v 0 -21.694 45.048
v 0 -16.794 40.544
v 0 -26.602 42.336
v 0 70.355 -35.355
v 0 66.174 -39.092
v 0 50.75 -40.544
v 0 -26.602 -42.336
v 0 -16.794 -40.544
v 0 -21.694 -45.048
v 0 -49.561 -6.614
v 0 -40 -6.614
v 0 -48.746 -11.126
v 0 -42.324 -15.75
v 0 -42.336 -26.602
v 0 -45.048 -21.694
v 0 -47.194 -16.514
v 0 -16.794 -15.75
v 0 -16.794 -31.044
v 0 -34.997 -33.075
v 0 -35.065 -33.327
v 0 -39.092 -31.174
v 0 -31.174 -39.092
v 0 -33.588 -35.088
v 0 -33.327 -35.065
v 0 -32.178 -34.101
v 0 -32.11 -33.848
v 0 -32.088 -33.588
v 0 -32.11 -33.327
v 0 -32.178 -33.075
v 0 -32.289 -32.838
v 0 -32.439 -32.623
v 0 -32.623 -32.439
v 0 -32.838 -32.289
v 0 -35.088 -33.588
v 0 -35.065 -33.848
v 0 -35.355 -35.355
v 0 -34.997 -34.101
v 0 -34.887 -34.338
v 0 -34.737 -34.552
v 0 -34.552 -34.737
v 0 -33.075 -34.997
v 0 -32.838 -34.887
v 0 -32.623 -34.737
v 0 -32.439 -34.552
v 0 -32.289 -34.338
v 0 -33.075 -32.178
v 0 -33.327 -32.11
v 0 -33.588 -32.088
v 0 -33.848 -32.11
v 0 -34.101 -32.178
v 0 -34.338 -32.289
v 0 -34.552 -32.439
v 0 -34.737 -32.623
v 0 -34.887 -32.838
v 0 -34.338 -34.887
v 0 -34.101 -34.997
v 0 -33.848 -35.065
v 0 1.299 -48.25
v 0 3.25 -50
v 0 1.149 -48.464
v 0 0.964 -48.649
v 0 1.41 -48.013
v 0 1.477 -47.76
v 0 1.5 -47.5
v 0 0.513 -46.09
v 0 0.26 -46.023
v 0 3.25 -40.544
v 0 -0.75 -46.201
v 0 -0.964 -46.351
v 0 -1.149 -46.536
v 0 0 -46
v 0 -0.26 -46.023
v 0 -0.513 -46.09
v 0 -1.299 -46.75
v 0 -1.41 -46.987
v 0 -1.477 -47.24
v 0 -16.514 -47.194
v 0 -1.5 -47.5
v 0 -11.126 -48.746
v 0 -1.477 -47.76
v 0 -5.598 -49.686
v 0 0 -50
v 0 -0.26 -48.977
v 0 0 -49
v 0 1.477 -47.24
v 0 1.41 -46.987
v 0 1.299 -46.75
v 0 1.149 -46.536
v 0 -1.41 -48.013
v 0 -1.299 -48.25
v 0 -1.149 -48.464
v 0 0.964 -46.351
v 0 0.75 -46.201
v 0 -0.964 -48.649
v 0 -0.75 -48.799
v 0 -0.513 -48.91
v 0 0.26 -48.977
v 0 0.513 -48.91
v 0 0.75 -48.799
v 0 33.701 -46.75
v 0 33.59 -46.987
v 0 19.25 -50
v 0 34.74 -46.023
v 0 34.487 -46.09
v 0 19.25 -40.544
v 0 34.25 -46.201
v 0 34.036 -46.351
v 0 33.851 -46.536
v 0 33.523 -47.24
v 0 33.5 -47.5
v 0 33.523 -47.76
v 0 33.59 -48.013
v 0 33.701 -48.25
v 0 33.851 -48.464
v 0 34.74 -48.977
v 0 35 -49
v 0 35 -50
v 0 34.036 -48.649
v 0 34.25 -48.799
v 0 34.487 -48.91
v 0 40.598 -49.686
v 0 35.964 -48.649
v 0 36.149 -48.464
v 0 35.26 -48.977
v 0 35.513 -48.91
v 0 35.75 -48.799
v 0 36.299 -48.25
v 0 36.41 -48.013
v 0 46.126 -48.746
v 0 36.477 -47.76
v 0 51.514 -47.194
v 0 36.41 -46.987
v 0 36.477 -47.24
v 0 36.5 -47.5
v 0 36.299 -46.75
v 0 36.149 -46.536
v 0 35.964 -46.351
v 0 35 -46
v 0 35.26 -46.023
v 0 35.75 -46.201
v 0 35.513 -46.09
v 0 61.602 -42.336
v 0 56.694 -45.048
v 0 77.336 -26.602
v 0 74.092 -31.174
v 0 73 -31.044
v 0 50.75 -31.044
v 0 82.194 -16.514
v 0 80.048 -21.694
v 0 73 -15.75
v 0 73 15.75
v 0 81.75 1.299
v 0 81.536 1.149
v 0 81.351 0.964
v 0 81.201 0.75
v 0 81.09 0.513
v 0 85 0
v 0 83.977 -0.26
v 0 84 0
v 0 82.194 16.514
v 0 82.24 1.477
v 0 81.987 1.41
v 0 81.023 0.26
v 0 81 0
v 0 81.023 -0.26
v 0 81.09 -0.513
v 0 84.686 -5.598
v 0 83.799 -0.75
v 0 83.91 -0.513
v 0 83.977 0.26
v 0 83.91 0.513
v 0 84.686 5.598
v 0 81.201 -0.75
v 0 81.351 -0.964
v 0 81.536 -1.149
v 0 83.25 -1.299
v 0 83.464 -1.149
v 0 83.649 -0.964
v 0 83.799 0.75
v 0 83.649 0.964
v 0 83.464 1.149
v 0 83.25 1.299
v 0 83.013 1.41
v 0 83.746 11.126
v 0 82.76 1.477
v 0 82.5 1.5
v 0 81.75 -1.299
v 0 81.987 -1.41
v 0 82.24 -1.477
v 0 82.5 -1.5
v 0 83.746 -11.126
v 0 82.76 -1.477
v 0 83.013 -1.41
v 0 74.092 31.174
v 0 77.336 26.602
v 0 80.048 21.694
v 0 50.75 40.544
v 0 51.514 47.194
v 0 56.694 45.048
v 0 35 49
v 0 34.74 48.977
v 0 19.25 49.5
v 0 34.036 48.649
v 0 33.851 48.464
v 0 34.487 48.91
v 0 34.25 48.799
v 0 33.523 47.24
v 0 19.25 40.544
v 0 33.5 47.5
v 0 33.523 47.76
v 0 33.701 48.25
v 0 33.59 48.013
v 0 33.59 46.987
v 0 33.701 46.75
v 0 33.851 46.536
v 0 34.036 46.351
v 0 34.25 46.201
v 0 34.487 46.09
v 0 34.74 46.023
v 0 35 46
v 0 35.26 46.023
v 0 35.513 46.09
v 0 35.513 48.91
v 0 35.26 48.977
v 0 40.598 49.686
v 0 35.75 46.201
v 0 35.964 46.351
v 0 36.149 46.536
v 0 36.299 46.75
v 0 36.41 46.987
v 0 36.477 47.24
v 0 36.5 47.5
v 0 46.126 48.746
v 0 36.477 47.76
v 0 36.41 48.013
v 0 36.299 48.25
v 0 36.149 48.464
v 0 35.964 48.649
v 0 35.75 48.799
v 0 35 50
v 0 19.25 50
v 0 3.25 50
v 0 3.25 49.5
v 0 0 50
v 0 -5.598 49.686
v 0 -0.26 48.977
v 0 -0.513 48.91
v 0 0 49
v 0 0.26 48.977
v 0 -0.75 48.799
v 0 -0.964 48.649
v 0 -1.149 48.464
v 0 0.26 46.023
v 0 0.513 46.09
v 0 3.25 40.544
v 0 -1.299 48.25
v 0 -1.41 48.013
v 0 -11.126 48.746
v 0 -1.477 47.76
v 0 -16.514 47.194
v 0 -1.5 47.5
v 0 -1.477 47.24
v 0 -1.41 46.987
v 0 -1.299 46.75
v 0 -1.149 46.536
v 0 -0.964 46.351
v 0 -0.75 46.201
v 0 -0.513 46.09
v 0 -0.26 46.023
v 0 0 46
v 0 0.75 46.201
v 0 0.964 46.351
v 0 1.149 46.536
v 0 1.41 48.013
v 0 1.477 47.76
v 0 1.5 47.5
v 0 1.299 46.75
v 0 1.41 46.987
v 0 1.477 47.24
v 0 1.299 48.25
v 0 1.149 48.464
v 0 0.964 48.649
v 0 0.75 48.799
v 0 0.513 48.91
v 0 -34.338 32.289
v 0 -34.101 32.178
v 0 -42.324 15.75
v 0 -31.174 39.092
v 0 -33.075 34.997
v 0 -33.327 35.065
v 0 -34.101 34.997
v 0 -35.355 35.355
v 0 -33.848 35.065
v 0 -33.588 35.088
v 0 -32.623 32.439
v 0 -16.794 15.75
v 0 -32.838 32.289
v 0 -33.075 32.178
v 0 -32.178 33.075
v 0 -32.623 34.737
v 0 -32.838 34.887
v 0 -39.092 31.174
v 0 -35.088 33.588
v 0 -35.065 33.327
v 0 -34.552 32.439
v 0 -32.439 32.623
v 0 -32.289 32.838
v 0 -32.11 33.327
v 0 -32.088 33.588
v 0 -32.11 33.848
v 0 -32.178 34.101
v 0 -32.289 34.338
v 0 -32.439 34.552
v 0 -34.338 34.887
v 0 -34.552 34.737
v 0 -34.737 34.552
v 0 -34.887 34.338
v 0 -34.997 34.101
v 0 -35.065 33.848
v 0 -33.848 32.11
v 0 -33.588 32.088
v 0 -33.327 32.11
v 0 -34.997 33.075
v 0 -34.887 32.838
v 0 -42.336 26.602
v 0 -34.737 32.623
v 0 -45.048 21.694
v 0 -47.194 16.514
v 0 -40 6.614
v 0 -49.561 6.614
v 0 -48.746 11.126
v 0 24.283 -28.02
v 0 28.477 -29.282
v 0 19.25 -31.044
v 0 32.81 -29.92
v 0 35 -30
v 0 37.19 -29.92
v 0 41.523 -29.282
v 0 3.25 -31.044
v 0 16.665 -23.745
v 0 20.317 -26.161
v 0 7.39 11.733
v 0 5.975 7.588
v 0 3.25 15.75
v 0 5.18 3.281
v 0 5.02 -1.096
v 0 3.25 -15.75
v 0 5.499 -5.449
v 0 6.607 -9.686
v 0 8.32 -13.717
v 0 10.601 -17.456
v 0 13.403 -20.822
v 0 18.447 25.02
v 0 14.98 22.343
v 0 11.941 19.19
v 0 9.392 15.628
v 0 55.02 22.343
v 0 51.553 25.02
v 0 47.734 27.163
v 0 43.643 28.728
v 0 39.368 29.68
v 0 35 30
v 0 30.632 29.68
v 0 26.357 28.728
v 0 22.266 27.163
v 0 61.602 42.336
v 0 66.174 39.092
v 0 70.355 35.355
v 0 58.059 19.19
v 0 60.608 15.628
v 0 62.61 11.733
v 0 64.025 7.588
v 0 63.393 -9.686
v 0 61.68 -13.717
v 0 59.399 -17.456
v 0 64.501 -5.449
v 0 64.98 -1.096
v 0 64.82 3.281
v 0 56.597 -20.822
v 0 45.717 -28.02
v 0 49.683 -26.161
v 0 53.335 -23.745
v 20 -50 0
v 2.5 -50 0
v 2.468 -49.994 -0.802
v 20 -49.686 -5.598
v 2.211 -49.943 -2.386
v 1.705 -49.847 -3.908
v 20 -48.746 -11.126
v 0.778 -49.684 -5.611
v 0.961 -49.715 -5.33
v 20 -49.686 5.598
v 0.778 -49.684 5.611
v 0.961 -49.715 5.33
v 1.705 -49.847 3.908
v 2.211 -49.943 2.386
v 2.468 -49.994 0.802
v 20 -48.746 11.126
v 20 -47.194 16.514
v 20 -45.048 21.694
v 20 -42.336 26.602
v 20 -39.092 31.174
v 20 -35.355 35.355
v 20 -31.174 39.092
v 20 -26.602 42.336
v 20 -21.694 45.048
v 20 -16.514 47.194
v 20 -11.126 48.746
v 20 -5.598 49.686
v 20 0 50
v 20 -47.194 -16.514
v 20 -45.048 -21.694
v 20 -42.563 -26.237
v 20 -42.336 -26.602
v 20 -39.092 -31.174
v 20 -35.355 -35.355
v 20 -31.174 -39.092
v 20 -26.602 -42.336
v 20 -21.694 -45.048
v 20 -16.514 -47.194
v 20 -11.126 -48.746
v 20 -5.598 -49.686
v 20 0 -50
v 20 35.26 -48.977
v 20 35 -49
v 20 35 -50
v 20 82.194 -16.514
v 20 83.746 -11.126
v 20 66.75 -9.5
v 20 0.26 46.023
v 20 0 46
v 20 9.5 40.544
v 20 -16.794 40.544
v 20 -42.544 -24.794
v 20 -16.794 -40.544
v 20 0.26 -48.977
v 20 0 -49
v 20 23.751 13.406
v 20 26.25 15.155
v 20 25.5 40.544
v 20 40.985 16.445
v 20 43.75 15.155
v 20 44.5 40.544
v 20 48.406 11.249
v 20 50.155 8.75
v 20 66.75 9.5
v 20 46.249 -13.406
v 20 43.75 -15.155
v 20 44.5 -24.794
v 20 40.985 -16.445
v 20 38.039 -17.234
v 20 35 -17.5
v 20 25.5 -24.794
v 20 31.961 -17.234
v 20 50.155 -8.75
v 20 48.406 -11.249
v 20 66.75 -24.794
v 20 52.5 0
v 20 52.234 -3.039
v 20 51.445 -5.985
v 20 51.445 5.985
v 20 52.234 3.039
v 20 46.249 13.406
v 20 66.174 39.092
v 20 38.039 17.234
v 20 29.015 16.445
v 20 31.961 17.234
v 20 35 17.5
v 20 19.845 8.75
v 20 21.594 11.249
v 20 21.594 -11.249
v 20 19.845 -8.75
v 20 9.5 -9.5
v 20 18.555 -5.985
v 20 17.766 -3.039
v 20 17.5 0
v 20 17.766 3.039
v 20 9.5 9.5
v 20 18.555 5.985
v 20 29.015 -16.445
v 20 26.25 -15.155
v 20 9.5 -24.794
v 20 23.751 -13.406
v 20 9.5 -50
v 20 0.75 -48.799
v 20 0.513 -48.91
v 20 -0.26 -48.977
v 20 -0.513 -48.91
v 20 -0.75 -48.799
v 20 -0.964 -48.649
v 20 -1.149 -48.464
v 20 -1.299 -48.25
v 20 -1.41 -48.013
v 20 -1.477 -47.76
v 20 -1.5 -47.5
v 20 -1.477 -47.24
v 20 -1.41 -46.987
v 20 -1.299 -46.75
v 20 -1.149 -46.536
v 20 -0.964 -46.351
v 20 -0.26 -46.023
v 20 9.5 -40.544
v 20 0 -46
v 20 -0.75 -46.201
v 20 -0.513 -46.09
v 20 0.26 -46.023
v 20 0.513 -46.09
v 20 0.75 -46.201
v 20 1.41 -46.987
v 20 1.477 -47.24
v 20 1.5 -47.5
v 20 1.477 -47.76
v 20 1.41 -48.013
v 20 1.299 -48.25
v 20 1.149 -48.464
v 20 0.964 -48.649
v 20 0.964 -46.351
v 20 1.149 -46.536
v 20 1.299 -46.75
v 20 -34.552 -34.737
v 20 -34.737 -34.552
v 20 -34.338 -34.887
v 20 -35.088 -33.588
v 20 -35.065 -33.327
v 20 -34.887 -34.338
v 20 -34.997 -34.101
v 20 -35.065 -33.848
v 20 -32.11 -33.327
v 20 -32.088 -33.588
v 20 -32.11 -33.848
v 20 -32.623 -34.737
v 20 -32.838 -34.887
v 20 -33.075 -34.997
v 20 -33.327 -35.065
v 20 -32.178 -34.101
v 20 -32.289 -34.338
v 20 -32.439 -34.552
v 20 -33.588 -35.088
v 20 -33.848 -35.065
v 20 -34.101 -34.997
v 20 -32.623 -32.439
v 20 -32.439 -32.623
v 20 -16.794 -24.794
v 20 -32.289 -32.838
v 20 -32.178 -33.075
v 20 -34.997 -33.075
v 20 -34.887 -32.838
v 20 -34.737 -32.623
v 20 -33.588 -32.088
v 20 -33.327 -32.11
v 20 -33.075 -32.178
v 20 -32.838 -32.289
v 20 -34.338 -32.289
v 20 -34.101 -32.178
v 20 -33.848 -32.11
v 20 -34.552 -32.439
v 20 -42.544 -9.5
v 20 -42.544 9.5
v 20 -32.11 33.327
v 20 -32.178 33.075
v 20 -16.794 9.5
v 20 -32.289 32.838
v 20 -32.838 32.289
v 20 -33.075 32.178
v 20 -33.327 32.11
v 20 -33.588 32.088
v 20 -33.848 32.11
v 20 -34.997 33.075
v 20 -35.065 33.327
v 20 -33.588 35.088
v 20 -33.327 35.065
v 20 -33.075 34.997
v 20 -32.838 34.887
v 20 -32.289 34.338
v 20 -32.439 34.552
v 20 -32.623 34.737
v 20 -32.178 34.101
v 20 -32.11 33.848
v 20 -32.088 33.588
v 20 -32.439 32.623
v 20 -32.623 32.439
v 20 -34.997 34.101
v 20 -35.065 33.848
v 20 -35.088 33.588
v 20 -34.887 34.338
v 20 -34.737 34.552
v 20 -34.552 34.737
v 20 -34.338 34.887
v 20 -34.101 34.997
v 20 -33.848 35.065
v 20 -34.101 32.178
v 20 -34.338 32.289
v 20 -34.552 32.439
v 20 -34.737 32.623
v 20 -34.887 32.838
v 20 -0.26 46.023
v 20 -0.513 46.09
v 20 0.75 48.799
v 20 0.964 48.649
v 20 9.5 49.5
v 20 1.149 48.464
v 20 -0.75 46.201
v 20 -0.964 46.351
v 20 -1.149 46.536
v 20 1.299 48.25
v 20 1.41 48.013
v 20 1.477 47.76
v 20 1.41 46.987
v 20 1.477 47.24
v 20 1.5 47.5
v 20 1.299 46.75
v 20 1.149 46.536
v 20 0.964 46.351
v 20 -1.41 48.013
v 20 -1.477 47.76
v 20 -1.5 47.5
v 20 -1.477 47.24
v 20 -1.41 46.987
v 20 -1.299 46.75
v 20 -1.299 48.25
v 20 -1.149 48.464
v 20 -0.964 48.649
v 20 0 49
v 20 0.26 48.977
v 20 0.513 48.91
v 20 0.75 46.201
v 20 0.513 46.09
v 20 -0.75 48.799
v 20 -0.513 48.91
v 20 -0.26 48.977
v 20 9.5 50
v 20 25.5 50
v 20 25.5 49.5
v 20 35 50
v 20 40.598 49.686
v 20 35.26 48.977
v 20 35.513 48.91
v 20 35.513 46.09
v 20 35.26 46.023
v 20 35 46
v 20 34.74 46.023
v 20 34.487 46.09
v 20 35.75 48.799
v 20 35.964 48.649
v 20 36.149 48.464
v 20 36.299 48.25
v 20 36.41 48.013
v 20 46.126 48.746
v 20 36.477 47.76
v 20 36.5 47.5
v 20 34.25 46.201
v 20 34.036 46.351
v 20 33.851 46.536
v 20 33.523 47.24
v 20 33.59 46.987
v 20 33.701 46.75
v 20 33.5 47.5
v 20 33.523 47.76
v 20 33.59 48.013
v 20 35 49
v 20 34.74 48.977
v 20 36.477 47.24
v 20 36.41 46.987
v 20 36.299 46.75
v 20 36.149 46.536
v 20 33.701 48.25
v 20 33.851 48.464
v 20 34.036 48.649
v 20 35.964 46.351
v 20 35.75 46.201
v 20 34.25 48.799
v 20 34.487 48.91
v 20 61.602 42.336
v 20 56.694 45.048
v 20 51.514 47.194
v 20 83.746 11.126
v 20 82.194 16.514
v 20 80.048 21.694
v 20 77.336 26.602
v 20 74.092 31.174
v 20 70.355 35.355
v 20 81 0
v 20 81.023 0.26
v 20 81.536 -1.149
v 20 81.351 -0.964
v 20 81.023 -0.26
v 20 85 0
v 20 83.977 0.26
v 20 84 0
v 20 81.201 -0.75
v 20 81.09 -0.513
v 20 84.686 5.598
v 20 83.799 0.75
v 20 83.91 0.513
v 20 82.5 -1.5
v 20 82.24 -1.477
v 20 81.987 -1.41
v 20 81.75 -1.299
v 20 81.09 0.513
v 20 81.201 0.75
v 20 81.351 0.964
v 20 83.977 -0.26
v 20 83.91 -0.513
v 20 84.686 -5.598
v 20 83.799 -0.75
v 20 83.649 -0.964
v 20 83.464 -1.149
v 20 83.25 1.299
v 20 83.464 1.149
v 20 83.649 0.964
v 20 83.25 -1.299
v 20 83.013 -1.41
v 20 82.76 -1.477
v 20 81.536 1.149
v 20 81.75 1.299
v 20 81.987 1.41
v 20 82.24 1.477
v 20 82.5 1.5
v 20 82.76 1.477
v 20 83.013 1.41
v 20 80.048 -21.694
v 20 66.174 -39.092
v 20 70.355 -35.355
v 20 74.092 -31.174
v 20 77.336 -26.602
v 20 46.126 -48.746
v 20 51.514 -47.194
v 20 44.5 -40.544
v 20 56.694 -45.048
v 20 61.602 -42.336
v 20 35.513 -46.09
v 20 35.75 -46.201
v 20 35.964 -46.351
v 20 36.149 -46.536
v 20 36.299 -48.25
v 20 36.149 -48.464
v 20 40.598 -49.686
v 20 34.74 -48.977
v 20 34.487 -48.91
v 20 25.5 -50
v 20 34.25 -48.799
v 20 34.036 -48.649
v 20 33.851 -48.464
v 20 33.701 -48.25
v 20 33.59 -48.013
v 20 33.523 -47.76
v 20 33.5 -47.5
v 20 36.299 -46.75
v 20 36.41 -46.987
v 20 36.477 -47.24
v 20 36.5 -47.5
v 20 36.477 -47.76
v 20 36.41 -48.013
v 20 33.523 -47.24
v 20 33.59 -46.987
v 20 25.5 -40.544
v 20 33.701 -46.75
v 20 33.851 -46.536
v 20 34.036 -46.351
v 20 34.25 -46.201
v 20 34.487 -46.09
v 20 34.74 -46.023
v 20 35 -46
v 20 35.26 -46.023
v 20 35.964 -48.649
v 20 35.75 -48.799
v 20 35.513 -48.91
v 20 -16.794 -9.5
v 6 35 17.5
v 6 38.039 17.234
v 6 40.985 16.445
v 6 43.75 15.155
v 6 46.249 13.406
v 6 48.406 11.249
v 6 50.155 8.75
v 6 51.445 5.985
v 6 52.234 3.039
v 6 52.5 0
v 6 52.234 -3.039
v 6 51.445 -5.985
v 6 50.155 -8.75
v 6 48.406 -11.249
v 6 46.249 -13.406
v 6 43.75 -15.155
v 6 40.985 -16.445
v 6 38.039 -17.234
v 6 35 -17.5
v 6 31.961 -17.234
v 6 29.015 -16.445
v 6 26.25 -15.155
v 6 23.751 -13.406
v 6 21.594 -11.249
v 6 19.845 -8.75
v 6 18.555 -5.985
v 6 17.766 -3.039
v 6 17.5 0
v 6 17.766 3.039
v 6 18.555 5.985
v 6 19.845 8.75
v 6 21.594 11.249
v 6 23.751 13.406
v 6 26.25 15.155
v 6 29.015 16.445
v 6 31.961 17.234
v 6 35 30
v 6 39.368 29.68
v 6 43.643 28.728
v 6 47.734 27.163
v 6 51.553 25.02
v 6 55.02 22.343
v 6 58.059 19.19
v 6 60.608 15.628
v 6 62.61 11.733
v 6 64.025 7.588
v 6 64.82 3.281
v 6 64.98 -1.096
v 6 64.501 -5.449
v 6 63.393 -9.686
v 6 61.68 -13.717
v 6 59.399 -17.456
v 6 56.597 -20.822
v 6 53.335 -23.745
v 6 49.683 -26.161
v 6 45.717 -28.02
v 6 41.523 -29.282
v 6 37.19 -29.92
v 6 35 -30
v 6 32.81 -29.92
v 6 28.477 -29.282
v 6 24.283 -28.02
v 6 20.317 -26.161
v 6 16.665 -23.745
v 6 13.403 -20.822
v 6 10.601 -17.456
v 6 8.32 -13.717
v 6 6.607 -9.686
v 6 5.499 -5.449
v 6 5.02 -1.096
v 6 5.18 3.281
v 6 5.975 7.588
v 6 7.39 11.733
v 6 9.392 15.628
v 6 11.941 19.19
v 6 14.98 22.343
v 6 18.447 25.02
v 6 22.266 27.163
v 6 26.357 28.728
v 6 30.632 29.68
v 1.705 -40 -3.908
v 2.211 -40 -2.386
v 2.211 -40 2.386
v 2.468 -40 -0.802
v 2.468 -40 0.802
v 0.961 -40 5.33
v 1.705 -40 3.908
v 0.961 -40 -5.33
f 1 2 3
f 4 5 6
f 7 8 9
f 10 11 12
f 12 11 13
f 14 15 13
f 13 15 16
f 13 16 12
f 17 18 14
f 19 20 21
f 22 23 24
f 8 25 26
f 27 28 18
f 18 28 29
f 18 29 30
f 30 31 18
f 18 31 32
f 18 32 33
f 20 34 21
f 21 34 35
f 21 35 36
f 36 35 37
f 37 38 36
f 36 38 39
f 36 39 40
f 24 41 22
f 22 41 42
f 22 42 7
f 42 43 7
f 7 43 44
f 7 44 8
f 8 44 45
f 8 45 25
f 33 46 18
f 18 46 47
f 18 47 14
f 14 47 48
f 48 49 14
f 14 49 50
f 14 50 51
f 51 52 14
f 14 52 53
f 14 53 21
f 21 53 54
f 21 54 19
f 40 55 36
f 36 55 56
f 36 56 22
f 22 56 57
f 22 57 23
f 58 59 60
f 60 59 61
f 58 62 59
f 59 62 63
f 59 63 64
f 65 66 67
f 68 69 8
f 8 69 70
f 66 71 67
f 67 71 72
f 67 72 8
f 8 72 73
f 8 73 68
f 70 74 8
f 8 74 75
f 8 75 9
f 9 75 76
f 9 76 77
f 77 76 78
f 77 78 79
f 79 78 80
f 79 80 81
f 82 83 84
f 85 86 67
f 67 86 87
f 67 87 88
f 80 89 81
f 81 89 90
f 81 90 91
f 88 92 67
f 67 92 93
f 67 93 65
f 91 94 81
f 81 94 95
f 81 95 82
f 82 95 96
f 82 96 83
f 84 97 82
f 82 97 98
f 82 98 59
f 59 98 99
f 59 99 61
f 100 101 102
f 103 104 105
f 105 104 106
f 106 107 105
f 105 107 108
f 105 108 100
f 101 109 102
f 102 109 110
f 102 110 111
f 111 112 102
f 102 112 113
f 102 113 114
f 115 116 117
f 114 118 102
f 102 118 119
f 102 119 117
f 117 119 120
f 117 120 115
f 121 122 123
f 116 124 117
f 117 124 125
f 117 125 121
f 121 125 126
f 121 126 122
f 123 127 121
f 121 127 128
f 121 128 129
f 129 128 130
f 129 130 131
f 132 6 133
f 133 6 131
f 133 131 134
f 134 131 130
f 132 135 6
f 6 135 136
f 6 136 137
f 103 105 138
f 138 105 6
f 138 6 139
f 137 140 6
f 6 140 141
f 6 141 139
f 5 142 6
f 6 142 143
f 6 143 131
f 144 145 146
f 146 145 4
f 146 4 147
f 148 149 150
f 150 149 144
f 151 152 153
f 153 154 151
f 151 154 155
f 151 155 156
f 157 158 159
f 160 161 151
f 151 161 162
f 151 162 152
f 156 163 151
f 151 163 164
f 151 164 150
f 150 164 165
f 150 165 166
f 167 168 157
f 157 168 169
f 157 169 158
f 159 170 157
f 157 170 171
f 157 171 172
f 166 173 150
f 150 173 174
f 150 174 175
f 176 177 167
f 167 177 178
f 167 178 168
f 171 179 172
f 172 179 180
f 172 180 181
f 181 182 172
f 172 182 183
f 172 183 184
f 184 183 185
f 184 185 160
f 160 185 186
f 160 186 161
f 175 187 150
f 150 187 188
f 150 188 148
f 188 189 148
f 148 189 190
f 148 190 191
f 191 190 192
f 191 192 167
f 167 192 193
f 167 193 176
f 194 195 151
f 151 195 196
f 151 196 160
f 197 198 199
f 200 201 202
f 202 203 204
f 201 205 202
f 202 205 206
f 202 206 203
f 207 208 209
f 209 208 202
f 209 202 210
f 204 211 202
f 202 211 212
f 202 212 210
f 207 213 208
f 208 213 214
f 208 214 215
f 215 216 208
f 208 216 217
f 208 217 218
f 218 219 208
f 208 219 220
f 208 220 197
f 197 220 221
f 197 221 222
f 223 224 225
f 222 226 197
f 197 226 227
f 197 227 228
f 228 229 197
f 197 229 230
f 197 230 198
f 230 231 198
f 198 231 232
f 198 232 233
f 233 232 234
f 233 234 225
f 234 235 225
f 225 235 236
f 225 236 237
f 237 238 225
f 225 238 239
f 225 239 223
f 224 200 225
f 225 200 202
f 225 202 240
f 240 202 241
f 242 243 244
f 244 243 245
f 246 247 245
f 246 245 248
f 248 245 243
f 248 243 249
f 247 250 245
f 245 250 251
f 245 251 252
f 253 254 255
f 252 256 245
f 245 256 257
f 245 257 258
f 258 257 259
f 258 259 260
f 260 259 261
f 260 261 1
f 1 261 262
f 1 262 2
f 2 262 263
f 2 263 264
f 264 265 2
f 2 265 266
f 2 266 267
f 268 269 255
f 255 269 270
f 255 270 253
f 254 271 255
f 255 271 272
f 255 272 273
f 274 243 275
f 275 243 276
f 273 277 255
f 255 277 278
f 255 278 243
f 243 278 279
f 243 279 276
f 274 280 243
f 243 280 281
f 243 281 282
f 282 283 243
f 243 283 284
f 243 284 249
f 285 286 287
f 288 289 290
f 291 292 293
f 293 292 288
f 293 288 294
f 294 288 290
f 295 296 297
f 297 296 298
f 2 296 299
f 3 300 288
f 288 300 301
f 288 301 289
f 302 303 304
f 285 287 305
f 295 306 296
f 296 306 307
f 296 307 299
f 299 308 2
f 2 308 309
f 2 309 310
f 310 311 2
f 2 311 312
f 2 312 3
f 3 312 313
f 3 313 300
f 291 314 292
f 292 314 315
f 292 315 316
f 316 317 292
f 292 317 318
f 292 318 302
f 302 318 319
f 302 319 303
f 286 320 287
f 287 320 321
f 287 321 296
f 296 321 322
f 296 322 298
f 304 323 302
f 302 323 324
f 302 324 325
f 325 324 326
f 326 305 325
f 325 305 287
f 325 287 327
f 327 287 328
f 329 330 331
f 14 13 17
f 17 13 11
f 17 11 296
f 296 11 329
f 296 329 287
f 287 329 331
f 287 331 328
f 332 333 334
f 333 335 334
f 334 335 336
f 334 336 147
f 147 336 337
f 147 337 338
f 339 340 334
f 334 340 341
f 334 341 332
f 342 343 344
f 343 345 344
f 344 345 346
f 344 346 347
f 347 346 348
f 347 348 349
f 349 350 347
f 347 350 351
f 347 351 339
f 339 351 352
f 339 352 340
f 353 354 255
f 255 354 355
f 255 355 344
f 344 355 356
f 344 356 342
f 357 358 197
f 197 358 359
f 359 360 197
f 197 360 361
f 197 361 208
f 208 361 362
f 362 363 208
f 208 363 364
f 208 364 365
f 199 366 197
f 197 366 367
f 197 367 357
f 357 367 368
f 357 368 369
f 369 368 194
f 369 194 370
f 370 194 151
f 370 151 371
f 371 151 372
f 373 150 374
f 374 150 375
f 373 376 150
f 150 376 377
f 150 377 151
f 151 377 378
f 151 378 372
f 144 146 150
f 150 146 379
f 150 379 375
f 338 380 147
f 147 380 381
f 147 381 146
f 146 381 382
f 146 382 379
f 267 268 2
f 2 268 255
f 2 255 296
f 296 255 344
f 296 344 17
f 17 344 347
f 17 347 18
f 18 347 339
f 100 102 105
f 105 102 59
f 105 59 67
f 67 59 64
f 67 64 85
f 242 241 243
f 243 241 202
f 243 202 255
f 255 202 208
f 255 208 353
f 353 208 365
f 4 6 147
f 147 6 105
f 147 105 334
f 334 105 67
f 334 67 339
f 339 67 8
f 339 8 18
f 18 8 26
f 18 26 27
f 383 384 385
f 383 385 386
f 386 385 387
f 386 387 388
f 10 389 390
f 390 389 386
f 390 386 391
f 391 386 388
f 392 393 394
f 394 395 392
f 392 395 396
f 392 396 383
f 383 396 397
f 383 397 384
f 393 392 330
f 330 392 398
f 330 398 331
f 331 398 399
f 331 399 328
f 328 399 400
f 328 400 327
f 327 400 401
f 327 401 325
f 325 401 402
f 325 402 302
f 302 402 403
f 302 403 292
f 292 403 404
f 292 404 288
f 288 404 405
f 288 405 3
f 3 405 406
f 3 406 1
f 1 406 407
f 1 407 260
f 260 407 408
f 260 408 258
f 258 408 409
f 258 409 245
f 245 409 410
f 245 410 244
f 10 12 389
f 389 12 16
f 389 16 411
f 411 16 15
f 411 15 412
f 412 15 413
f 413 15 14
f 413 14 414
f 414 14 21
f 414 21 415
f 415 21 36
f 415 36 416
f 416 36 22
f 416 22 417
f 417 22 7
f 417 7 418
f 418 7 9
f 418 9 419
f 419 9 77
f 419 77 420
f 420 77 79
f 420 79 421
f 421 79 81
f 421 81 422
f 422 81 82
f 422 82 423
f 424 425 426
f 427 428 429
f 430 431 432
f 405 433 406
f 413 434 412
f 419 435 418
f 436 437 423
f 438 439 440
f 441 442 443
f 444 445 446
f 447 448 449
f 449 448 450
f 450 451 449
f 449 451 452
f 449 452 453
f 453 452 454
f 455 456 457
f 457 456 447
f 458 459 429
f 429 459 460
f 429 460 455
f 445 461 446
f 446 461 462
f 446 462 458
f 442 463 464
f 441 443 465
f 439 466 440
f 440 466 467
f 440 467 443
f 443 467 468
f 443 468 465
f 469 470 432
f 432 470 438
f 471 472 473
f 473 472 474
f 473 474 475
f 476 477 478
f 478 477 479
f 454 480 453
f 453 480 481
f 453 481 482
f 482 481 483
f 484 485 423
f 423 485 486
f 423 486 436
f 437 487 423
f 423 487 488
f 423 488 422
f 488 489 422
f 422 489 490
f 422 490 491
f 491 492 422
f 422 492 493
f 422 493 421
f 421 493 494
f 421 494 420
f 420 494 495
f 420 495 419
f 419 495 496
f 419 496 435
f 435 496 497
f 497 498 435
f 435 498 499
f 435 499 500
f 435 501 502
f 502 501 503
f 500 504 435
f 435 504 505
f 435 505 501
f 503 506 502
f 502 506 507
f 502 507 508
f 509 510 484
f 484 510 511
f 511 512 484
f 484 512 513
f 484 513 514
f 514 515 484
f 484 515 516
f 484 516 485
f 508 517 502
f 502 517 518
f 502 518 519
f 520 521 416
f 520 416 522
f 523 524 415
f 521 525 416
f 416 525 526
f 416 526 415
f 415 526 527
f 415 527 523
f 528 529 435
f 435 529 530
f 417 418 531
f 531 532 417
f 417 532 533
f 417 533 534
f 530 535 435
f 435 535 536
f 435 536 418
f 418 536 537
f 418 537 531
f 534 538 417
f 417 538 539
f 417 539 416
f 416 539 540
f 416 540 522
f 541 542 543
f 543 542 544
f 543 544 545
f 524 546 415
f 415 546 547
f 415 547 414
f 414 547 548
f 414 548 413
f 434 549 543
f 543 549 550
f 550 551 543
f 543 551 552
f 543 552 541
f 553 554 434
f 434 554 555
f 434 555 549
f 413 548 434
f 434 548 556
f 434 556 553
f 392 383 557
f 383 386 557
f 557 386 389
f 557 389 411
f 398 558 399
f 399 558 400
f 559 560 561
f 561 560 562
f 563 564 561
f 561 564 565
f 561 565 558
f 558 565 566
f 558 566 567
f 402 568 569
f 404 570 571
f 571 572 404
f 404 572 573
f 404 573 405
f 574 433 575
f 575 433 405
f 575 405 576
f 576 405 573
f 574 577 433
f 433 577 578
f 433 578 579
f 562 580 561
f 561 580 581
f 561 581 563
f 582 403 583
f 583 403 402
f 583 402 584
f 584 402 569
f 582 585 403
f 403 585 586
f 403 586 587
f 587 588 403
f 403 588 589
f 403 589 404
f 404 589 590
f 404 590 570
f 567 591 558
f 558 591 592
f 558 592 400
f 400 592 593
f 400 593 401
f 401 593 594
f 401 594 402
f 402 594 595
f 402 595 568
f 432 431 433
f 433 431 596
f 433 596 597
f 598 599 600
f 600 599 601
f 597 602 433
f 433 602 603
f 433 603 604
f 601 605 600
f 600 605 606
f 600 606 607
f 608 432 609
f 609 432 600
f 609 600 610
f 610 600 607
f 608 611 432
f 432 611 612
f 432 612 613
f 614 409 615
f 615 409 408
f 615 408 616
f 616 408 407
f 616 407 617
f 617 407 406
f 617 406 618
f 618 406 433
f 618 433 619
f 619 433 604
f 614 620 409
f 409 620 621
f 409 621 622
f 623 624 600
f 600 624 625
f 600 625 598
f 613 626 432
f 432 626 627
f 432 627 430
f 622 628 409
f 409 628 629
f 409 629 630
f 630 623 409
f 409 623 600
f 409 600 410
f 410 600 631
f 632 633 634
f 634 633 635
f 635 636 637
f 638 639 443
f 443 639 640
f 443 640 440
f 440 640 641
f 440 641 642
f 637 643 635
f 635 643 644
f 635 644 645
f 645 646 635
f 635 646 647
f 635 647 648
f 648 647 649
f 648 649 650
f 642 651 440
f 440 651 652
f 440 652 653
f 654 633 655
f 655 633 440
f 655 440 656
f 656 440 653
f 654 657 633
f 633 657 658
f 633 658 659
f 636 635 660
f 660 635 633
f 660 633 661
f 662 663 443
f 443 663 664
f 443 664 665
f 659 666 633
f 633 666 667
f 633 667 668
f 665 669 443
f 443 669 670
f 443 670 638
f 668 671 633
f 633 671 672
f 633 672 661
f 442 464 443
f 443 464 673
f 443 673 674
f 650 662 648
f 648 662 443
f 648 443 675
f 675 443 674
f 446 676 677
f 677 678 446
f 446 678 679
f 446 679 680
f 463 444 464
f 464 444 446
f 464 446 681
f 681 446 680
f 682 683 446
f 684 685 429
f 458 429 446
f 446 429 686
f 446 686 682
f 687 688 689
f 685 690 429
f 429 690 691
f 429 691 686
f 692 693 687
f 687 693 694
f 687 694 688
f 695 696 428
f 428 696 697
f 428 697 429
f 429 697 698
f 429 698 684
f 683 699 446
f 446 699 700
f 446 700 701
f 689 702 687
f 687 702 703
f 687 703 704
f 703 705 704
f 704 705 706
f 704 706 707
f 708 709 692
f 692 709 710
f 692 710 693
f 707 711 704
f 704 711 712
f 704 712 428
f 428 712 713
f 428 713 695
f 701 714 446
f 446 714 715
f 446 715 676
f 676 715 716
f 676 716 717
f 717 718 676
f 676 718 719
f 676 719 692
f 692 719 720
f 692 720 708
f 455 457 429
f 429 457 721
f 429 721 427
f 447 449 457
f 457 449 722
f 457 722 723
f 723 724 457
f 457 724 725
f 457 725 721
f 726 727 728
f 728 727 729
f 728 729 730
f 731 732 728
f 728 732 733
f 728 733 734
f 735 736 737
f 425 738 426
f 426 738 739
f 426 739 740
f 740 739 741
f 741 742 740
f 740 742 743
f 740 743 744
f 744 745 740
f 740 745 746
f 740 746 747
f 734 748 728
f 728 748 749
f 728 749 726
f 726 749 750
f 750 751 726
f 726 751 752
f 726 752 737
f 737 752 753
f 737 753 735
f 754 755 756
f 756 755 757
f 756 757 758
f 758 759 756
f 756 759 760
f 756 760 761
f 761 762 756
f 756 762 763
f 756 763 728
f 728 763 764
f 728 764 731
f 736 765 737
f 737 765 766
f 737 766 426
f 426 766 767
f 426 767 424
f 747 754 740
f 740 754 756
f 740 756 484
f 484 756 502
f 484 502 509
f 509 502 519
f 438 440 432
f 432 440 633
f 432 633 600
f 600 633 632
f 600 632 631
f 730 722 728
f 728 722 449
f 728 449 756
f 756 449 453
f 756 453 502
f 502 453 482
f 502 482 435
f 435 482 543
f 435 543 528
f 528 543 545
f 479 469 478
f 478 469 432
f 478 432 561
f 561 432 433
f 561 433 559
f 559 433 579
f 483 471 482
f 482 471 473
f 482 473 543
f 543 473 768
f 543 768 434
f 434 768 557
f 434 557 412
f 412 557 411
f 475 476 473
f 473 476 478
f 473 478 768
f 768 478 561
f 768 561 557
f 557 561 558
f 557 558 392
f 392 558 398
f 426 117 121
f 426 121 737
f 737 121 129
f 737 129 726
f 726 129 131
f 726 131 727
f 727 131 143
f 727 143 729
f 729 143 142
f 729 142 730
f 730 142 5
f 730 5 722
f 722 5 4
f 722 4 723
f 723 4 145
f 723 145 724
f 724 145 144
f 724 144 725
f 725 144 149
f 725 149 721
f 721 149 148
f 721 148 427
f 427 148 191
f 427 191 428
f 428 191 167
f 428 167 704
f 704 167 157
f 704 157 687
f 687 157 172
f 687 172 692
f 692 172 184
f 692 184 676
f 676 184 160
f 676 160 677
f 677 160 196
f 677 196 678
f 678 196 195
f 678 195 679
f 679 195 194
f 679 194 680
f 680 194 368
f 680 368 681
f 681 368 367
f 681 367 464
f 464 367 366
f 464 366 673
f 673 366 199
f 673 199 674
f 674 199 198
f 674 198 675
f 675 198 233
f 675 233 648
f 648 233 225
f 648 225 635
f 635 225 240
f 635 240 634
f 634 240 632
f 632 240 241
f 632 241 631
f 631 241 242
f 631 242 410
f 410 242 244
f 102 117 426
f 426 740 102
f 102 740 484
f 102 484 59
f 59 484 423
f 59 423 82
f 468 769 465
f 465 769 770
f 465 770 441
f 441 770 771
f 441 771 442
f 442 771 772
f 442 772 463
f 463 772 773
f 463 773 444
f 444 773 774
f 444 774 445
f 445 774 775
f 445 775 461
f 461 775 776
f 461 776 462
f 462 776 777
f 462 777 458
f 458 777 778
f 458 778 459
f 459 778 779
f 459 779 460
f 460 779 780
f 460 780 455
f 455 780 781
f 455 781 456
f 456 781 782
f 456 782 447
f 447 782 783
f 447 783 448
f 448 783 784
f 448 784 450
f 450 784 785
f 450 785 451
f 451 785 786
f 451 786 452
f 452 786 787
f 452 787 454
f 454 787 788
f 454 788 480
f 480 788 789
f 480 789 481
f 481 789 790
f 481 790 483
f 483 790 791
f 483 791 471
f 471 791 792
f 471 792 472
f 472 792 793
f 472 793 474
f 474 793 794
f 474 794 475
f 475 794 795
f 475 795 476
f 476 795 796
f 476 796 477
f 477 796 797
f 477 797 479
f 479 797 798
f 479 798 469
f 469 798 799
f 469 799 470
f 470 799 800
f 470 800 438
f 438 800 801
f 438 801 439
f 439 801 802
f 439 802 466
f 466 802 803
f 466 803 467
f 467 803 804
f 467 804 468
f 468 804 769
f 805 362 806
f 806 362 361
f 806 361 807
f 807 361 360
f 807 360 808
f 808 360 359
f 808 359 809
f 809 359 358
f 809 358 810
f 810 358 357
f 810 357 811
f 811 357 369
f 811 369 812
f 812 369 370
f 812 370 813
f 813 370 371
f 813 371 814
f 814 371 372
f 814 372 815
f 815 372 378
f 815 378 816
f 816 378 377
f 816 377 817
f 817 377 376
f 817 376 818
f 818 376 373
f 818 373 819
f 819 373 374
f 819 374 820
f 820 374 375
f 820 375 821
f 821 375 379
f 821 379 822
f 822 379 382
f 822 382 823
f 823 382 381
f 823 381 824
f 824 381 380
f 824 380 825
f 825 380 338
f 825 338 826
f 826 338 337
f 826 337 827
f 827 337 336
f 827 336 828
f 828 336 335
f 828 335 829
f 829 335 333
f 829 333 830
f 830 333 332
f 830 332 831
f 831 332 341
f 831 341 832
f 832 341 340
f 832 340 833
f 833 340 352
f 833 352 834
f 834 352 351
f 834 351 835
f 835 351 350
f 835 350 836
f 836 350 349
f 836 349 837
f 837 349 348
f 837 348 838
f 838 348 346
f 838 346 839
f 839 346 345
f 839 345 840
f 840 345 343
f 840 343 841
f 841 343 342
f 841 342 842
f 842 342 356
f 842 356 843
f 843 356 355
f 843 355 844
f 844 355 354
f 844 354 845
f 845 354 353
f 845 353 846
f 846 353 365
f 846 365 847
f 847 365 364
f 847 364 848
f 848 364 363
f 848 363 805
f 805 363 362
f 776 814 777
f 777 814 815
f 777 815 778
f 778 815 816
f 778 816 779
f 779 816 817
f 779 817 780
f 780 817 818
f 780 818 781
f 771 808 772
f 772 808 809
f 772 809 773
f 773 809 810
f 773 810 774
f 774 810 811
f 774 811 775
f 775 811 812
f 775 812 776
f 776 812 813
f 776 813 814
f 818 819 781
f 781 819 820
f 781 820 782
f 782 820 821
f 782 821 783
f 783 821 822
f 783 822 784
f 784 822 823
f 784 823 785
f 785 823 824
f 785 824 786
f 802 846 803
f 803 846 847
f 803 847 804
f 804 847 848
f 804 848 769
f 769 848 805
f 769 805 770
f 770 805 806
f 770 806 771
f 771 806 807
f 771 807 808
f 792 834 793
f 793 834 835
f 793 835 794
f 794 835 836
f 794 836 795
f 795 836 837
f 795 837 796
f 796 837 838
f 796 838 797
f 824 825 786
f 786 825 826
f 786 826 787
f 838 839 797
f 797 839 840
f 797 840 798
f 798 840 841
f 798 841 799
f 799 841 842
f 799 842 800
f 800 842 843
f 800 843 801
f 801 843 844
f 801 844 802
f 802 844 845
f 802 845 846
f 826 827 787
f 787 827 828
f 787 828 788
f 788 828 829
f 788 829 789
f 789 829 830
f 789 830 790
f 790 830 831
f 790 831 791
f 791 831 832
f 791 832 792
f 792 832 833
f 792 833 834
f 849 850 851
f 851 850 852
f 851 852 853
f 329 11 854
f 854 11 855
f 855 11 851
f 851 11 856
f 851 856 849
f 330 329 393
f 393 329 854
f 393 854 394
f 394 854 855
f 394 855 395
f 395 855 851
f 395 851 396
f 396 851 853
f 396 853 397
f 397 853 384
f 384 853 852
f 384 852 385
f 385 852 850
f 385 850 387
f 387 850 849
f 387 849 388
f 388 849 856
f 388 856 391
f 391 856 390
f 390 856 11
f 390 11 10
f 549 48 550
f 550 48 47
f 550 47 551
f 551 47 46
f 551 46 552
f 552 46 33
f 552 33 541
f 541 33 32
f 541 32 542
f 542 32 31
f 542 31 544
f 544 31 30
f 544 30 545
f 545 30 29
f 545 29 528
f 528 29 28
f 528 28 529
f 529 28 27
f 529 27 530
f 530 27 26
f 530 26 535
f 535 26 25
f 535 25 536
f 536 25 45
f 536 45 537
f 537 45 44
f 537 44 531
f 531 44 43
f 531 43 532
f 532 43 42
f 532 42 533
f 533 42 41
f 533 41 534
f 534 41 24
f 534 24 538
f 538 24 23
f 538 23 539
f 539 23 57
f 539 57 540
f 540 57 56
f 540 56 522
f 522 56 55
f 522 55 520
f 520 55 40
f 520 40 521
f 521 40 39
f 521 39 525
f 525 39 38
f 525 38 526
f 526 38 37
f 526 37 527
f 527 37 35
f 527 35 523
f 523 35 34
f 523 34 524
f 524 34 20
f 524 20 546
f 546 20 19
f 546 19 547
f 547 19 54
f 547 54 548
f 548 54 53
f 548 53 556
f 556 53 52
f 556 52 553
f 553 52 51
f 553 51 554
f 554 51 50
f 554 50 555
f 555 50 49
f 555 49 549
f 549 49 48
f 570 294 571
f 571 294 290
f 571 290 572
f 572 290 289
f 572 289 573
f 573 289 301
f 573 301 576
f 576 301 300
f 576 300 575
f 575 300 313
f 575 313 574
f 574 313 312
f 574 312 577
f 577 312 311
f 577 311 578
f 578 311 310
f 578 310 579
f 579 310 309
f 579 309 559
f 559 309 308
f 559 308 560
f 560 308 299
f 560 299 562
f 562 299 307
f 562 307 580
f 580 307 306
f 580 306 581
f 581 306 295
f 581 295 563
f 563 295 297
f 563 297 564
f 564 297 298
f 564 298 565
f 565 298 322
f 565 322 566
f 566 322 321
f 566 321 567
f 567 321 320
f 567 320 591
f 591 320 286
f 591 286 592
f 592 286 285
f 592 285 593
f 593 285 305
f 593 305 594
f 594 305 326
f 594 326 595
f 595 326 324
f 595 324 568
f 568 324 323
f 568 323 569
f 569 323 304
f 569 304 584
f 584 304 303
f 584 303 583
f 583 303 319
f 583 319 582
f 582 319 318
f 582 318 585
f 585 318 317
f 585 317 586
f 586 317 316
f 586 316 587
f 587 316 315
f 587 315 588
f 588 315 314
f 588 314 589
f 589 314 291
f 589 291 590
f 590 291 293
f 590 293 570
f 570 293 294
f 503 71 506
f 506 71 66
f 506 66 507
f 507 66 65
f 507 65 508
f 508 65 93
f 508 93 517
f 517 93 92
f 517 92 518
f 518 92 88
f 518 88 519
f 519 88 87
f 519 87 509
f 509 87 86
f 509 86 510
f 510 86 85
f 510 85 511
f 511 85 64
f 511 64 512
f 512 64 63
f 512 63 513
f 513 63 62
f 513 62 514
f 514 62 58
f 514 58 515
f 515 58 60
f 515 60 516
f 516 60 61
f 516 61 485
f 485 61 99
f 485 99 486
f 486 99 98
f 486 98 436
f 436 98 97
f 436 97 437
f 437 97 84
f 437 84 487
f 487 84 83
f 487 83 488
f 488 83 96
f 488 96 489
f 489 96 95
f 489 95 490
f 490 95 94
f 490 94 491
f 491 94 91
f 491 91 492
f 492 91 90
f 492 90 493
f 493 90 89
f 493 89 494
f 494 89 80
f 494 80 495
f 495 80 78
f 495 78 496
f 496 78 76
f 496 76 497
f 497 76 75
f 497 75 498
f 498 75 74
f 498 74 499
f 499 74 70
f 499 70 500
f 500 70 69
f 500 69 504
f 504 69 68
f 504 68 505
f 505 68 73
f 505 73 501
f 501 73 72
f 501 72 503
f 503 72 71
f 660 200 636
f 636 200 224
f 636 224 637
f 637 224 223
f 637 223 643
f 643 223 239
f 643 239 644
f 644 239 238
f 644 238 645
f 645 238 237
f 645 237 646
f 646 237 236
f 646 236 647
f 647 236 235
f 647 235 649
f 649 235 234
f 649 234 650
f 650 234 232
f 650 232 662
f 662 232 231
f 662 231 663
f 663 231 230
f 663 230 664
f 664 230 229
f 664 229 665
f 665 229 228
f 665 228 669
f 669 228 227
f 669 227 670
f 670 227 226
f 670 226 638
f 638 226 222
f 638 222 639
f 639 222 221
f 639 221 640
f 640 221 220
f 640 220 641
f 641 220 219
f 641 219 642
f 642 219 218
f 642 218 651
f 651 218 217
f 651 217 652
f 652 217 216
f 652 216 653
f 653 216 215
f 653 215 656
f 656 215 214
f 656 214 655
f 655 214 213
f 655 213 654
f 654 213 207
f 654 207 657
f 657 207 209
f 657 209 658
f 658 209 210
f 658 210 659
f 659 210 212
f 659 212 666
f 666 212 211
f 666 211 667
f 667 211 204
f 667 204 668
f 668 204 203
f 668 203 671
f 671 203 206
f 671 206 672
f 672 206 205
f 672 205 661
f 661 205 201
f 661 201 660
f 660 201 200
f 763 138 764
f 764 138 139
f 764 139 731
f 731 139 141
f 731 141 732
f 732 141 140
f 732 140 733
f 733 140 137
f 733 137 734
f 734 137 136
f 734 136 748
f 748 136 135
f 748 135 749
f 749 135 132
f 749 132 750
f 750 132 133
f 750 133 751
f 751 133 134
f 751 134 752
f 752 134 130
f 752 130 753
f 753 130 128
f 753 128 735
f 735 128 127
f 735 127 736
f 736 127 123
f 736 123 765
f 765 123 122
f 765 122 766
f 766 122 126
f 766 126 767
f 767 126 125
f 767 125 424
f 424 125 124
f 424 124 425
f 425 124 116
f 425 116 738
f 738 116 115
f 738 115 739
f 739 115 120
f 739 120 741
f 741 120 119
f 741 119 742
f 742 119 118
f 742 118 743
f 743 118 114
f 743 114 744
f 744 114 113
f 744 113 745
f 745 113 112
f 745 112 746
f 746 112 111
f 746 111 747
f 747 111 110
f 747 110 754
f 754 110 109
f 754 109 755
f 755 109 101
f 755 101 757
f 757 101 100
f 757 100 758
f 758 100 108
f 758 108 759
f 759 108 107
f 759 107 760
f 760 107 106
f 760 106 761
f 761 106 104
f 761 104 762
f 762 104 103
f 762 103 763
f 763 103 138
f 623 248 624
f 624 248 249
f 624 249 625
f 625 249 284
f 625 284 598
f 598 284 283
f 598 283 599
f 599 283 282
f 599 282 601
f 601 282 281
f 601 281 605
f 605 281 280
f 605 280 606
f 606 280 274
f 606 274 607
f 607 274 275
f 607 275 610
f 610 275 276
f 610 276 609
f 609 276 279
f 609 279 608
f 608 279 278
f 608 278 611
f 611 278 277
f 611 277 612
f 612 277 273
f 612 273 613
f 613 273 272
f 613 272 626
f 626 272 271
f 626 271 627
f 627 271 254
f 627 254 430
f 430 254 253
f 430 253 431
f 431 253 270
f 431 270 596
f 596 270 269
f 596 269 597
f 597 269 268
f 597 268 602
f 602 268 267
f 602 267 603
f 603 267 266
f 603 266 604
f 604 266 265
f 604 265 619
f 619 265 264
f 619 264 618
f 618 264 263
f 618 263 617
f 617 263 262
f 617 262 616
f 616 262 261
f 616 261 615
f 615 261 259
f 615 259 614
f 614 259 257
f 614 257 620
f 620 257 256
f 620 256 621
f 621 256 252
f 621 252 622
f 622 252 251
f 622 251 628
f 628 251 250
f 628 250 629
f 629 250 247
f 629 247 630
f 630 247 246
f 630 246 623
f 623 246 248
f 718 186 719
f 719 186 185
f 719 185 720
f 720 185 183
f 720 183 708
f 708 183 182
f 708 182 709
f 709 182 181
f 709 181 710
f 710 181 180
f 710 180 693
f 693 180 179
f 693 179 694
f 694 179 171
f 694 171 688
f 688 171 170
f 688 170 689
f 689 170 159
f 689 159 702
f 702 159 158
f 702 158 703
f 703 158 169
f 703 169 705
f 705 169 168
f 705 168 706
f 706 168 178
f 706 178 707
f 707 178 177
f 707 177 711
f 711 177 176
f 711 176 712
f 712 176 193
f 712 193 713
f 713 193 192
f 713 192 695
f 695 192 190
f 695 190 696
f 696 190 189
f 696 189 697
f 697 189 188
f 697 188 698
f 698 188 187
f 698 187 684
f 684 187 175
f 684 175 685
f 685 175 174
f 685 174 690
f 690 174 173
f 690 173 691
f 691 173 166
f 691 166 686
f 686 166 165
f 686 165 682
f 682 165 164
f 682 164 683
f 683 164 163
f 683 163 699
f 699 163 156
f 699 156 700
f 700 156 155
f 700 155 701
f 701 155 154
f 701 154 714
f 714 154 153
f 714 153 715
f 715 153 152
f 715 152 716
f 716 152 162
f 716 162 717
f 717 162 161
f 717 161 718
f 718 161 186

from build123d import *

# Parameters (mm, degrees)
CROQUIS1_R              = 17.5
SALIENTE_EXTRUIR1_DEPTH = 20
CROQUIS2_R              = 30
CORTAR_EXTRUIR1_DEPTH   = 6
CROQUIS3_R              = 10
CORTAR_EXTRUIR2_DEPTH   = 10
CROQUIS4_R              = 1.5
CORTAR_EXTRUIR3_DEPTH   = 101.623059057


with BuildPart() as part:
    # Croquis1 → Saliente-Extruir1 (new body)
    with BuildSketch(Plane(origin=(0, 0, 0), x_dir=(0, 0, -1), z_dir=(1, 0, 0))):
        with BuildLine():
            Line((-50, 35), (-50, 0))
            ThreePointArc((-50, 0), (0, -50), (50, 0))
            Line((50, 0), (50, 35))
            ThreePointArc((50, 35), (0, 85), (-50, 35))
        make_face()
        with Locations((0, 35)):
            Circle(CROQUIS1_R, mode=Mode.SUBTRACT)
    extrude(amount=SALIENTE_EXTRUIR1_DEPTH)

    # Croquis2 → Cortar-Extruir1 (cut)
    with BuildSketch(Plane(origin=(0, 0, 0), x_dir=(0, 0, -1), z_dir=(1, 0, 0))):
        with Locations((0, 35)):
            Circle(CROQUIS2_R)
    extrude(amount=CORTAR_EXTRUIR1_DEPTH, mode=Mode.SUBTRACT)

    # Croquis3 → Cortar-Extruir2 (cut)
    with BuildSketch(Plane(origin=(0, -50, 0), x_dir=(1, 0, 0), z_dir=(0, 1, 0))):
        with Locations((-7.5, 0)):
            Circle(CROQUIS3_R)
    extrude(amount=CORTAR_EXTRUIR2_DEPTH, mode=Mode.SUBTRACT)

    # Croquis4 → Cortar-Extruir3 (cut, through all)
    with BuildSketch(Plane.ZY):
        with Locations((0, 82.5)):
            Circle(CROQUIS4_R)
        with Locations((47.5, 35)):
            Circle(CROQUIS4_R)
        with Locations((-47.5, 35)):
            Circle(CROQUIS4_R)
        with Locations((-47.5, 0)):
            Circle(CROQUIS4_R)
        with Locations((47.5, 0)):
            Circle(CROQUIS4_R)
        with Locations((33.587572106, -33.587572106)):
            Circle(CROQUIS4_R)
        with Locations((-33.587572106, -33.587572106)):
            Circle(CROQUIS4_R)
    extrude(amount=-CORTAR_EXTRUIR3_DEPTH, mode=Mode.SUBTRACT)


solid = part.part
